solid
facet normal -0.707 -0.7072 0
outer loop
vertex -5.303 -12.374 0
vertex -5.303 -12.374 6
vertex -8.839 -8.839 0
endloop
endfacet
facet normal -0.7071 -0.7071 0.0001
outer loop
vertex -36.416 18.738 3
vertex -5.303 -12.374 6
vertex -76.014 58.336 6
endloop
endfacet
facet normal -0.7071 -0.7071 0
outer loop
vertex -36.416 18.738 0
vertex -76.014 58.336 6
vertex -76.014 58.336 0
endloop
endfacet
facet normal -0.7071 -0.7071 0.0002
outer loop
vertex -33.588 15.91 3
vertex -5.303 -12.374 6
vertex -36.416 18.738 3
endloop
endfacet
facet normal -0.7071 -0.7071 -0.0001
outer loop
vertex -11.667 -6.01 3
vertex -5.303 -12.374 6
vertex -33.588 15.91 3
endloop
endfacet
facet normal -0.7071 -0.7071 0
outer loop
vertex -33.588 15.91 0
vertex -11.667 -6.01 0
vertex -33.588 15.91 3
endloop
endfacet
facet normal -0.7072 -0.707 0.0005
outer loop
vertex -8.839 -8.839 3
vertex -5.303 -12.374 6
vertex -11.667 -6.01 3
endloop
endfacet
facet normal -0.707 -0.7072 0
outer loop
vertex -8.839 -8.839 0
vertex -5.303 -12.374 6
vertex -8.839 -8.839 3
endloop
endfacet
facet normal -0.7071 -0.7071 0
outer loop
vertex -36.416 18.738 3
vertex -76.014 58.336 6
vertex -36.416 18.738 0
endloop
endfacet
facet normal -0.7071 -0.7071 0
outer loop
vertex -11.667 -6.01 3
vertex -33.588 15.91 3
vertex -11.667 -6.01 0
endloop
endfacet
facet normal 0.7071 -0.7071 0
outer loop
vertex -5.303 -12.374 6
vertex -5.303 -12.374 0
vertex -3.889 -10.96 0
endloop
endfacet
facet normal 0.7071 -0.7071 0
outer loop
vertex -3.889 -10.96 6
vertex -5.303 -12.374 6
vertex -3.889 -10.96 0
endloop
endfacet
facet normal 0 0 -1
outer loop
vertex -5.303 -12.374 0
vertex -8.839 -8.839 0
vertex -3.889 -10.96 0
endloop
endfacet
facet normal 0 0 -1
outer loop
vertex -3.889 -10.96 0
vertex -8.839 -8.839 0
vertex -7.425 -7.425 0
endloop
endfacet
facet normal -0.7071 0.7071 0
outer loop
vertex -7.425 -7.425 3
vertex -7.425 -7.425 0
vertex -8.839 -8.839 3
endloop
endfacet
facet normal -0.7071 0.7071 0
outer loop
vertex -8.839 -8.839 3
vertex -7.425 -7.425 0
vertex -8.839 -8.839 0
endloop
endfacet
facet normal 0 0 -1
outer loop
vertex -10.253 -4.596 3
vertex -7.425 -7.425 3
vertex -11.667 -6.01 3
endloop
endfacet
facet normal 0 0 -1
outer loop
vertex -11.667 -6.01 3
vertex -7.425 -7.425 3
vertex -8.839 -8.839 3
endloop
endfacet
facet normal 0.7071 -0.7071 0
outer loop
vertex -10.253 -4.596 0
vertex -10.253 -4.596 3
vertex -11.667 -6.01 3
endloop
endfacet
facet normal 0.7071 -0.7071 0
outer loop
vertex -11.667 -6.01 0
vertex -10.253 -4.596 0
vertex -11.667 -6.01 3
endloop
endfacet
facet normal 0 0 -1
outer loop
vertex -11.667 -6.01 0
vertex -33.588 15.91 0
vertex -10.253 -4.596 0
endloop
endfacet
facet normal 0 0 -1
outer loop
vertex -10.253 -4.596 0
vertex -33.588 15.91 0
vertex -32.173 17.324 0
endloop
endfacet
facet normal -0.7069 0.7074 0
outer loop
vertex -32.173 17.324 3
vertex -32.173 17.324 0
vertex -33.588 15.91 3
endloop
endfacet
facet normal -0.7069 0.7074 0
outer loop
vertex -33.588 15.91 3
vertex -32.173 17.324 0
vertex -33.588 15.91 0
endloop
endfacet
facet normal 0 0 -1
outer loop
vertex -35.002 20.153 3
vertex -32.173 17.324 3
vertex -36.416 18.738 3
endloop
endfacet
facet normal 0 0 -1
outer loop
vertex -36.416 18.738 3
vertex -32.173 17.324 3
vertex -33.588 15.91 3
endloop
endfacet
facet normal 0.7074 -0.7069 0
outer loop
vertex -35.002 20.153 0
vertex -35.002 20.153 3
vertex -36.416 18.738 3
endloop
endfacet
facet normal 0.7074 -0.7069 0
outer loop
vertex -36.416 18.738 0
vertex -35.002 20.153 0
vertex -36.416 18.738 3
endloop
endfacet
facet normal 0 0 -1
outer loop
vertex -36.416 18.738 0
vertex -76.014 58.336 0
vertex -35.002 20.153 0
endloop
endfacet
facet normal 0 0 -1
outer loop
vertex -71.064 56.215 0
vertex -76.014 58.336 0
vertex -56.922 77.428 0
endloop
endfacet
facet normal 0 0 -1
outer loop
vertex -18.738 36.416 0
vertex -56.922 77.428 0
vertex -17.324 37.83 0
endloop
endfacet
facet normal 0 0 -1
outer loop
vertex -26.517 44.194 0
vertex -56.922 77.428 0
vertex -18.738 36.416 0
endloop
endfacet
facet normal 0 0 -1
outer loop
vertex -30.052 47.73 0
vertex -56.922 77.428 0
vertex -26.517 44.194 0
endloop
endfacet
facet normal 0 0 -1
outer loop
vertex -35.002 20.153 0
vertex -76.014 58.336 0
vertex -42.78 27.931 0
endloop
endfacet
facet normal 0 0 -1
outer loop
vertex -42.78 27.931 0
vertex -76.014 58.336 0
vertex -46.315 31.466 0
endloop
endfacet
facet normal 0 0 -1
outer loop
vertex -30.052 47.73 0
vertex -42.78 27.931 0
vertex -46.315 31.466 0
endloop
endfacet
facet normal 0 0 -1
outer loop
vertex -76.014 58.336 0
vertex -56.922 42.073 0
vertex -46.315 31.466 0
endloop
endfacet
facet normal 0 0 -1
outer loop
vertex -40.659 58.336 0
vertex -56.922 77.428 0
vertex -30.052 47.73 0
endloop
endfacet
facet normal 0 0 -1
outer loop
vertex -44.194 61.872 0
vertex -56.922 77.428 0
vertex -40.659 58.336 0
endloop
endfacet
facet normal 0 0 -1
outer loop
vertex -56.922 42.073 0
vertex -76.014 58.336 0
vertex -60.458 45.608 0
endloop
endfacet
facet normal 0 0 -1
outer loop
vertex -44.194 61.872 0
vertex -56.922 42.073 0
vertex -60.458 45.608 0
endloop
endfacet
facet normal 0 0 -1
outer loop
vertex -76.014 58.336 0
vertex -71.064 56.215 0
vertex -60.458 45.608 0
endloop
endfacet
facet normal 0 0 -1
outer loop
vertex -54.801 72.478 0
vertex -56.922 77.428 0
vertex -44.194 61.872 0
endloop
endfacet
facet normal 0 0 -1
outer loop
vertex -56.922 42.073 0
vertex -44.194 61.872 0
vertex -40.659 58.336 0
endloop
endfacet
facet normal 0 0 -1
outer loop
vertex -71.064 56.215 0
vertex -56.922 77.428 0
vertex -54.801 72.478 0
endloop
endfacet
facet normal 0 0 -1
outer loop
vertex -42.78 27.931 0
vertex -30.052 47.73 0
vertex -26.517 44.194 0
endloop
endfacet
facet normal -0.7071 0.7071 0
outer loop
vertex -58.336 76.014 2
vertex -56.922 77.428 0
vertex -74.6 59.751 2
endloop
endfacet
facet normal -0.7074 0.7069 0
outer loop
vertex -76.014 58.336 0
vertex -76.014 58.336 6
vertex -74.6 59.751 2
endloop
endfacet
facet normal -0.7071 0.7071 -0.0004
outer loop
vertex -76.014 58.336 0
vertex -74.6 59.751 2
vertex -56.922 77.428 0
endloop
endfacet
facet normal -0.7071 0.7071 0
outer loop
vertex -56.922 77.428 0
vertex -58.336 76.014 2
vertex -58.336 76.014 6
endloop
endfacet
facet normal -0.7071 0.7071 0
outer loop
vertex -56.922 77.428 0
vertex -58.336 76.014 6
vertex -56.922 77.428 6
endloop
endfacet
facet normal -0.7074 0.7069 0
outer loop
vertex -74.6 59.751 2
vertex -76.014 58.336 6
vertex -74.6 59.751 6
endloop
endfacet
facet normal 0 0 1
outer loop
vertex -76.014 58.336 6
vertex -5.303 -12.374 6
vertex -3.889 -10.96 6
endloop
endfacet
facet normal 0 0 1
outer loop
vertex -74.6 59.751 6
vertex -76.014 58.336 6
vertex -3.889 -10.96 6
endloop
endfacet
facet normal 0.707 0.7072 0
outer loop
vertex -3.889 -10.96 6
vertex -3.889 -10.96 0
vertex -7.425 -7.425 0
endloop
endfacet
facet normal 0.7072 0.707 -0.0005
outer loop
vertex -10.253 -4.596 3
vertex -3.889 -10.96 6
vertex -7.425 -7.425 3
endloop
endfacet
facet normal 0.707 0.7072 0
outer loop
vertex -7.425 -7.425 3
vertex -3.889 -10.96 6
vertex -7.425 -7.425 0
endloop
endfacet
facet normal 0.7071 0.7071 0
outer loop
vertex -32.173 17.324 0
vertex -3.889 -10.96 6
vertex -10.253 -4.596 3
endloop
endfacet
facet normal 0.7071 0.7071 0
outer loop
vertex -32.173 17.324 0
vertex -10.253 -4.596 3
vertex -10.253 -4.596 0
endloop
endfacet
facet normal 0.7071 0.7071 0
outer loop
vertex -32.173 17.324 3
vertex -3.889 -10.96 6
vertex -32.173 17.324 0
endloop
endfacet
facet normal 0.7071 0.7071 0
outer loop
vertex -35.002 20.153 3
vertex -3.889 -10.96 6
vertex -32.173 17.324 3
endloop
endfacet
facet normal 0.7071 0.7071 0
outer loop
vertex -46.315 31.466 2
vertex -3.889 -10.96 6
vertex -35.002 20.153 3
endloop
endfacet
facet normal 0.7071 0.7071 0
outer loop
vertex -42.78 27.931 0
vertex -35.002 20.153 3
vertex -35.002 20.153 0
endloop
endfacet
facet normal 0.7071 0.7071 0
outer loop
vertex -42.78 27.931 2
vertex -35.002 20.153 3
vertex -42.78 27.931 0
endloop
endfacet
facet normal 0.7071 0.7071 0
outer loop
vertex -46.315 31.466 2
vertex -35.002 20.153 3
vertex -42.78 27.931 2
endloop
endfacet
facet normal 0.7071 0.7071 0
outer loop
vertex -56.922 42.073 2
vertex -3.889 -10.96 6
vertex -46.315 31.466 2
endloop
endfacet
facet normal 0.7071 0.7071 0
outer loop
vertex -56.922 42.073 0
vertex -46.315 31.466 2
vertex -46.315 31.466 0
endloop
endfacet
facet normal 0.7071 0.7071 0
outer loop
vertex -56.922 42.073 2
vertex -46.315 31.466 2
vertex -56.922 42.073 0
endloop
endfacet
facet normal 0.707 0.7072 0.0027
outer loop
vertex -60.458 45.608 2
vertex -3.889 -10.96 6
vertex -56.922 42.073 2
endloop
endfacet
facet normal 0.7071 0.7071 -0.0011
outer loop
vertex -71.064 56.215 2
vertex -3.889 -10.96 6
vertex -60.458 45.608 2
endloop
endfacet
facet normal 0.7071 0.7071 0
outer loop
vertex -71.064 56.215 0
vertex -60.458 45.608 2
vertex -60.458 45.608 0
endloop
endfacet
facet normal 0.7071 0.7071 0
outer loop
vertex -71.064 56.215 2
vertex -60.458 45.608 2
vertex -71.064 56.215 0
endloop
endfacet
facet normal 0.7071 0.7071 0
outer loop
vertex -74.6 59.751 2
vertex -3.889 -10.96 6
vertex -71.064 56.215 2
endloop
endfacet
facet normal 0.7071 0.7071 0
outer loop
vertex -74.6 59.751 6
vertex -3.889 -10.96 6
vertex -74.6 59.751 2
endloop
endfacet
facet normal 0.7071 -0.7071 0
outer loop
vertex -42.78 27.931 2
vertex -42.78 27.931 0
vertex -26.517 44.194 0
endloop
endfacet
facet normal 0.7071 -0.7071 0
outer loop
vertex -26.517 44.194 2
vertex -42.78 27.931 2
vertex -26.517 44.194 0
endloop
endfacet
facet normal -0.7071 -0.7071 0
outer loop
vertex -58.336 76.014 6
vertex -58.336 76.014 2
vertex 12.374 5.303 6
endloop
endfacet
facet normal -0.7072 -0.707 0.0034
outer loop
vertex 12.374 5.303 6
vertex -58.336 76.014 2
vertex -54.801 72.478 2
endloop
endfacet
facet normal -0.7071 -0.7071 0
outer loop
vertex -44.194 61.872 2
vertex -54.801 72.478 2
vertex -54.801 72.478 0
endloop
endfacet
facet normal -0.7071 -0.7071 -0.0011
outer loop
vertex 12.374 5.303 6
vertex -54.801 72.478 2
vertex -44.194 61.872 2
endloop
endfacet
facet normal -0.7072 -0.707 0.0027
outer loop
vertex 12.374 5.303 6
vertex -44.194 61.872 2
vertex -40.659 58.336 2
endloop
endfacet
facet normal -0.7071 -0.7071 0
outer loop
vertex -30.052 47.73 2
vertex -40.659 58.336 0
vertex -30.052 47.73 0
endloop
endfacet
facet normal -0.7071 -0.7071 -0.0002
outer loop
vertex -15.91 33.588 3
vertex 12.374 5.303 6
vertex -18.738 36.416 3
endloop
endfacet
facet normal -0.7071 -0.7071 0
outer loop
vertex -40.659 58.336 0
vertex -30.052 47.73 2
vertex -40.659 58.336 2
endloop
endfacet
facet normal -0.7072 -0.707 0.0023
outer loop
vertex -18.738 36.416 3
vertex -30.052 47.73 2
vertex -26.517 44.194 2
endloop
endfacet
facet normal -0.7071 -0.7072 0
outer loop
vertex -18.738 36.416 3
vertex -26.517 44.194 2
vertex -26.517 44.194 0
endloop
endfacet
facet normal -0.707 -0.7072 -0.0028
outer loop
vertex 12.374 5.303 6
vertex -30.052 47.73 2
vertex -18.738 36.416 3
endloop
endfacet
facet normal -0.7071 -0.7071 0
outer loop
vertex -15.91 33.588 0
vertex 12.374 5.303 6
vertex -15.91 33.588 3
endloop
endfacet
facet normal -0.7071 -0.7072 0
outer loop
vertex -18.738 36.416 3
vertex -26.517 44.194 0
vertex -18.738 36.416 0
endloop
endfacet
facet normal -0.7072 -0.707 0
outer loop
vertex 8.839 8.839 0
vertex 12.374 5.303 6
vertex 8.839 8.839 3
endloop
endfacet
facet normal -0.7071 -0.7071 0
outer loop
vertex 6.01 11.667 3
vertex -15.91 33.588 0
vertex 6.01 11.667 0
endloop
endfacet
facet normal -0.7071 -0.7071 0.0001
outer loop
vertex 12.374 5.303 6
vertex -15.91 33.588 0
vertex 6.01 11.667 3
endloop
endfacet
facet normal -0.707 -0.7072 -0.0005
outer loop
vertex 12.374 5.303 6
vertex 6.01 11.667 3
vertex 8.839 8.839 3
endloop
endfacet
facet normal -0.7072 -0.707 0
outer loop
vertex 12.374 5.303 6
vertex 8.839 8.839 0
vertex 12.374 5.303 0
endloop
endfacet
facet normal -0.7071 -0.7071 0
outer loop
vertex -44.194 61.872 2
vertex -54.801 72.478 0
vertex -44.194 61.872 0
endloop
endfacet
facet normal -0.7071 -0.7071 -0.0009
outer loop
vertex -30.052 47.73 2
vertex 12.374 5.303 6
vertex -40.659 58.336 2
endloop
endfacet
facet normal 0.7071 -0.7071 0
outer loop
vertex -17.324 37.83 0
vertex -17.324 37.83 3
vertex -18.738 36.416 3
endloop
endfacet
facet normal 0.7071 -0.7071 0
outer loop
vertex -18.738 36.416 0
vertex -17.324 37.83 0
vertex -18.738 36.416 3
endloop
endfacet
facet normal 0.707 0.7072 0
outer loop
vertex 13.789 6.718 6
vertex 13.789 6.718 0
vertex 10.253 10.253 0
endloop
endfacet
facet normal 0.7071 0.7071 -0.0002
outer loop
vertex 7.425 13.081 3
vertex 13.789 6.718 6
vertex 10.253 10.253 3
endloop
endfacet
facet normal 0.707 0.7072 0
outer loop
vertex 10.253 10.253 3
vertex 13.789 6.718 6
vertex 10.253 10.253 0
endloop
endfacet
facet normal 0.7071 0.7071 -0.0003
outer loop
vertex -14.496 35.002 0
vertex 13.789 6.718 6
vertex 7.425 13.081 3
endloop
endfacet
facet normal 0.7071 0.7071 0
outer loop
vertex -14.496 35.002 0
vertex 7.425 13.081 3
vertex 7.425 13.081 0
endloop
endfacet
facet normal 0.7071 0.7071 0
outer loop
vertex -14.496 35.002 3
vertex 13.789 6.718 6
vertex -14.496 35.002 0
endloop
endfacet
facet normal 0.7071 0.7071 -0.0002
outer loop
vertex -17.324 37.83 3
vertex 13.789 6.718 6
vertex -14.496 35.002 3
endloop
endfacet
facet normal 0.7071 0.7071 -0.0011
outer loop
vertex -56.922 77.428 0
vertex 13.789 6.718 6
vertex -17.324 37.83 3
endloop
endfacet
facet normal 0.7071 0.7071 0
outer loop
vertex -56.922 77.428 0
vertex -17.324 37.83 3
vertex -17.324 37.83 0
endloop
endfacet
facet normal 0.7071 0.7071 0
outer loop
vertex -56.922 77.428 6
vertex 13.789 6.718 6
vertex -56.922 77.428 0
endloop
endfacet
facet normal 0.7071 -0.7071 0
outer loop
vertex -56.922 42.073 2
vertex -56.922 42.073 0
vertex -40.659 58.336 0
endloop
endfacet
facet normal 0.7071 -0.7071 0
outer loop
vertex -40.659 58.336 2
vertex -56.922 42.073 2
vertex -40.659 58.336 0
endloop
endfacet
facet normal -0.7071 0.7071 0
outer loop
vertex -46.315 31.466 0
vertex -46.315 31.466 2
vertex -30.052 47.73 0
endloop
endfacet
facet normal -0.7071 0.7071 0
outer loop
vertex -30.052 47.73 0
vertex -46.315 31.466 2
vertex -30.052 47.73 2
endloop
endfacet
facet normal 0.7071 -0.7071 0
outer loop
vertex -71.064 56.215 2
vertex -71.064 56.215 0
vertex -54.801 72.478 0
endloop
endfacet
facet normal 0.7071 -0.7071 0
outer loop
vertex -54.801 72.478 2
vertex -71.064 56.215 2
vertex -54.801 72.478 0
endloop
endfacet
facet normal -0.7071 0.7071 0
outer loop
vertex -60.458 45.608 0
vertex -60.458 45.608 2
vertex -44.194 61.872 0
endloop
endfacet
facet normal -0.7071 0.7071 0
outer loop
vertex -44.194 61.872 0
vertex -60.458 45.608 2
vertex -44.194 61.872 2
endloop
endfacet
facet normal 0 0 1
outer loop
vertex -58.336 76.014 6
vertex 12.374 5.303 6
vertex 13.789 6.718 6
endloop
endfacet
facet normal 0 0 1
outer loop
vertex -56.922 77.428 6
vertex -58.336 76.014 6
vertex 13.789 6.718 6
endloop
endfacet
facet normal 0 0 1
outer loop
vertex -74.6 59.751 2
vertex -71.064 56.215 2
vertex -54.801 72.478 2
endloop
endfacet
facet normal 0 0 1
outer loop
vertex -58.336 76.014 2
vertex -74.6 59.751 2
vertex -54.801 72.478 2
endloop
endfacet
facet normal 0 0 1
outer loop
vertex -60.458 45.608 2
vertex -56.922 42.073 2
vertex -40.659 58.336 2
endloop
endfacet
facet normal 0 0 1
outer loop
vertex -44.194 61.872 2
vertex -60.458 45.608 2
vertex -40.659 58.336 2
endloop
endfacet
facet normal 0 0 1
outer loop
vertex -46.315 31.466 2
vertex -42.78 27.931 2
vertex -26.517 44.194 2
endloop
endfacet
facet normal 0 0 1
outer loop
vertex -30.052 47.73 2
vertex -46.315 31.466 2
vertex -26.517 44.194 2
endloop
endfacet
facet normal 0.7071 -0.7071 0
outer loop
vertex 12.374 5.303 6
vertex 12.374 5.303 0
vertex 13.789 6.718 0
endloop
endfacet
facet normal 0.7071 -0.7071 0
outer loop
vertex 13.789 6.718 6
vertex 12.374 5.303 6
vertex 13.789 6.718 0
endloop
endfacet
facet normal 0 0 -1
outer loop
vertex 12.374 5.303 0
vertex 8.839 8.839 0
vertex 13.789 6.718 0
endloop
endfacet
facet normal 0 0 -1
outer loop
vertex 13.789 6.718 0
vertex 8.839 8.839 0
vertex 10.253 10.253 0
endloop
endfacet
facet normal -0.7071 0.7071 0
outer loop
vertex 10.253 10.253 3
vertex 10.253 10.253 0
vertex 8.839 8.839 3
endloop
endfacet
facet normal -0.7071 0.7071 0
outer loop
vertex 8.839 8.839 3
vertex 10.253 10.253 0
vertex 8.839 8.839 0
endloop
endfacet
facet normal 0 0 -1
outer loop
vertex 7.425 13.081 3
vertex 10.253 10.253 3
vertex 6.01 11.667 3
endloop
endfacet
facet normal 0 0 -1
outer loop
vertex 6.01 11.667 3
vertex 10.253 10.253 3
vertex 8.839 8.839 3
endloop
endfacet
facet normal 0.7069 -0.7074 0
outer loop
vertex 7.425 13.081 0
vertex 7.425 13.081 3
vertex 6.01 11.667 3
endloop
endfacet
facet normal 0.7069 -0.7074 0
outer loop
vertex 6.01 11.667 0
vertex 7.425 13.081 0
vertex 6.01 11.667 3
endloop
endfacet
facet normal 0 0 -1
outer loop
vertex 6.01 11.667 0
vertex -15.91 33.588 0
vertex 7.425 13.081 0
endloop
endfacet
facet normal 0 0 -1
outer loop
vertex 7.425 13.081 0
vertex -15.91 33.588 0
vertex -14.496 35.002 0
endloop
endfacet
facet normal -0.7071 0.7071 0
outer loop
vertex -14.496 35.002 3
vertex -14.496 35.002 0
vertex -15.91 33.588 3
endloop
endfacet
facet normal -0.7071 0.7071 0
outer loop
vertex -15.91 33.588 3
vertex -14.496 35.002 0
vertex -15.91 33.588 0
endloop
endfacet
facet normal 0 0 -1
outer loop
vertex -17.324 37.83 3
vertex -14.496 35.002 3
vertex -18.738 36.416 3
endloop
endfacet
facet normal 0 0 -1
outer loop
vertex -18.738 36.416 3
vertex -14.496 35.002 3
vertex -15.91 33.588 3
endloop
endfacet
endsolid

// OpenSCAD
// file: shapes.scad
/*
 *  OpenSCAD Shapes Library (www.openscad.at)
 *  Copyright (C) 2009  Catarina Mota <clifford@clifford.at>
 *
 *  This program is free software; you can redistribute it and/or modify
 *  it under the terms of the GNU General Public License as published by
 *  the Free Software Foundation; either version 2 of the License, or
 *  (at your option) any later version.
 *
 *  This program is distributed in the hope that it will be useful,
 *  but WITHOUT ANY WARRANTY; without even the implied warranty of
 *  MERCHANTABILITY or FITNESS FOR A PARTICULAR PURPOSE.  See the
 *  GNU General Public License for more details.
 *
 *  You should have received a copy of the GNU General Public License
 *  along with this program; if not, write to the Free Software
 *  Foundation, Inc., 59 Temple Place, Suite 330, Boston, MA  02111-1307  USA
 *
*/


//box(width, height, depth);
//roundedBox(width, height, depth, factor);
//cone(height, radius);
//oval(width, height, depth);
//tube(height, radius, wall);
//ovalTube(width, height, depth, wall);
//hexagon(height, depth);
//octagon(height, depth);
//dodecagon(height, depth);
//hexagram(height, depth);
//rightTriangle(adjacent, opposite, depth);
//equiTriangle(side, depth);
//12ptStar(height, depth);

//----------------------

//roundedBox(120, 60, 3, 8);

//----------------------

module box(w,h,d) {
	scale ([w,h,d]) cube(1, true);
}

module roundedBox(w,h,d,f){
	difference(){
		box(w,h,d);
		translate([-w/2,h/2,0]) cube(w/(f/2),true);
		translate([w/2,h/2,0]) cube(w/(f/2),true);
		translate([-w/2,-h/2,0]) cube(w/(f/2),true);
		translate([w/2,-h/2,0]) cube(w/(f/2),true);
	}
	translate([-w/2+w/f,h/2-w/f,-d/2]) cylinder(d,w/f, w/f);
	translate([w/2-w/f,h/2-w/f,-d/2]) cylinder(d,w/f, w/f);
	translate([-w/2+w/f,-h/2+w/f,-d/2]) cylinder(d,w/f, w/f);
	translate([w/2-w/f,-h/2+w/f,-d/2]) cylinder(d,w/f, w/f);
}

module cone(height, radius) {
		cylinder(height, radius, 0);
}

module oval(w,h,d) {
	scale ([w/100, h/100, 1]) cylinder(d, 50, 50);
}

module tube(height, radius, wall) {
	difference(){
		cylinder(height, radius, radius);
		cylinder(height, radius-wall, radius-wall);
	}
}

module ovalTube(w,h,d,wall) {
	difference(){
		scale ([w/100, h/100, 1]) cylinder(d, 50, 50);
		scale ([w/100, h/100, 1]) cylinder(d, 50-wall, 50-wall);
	}
}

module hexagon(height, depth) {
	boxWidth=height/1.75;
		union(){
			box(boxWidth, height, depth);
			rotate([0,0,60]) box(boxWidth, height, depth);
			rotate([0,0,-60]) box(boxWidth, height, depth);
		}
}

module octagon(height, depth) {
	intersection(){
		box(height, height, depth);
		rotate([0,0,45]) box(height, height, depth);
	}
}

module dodecagon(height, depth) {
	intersection(){
		hexagon(height, depth);
		rotate([0,0,90]) hexagon(height, depth);
	}
}

module hexagram(height, depth) {
	boxWidth=height/1.75;
	intersection(){
		box(height, boxWidth, depth);
		rotate([0,0,60]) box(height, boxWidth, depth);
	}
	intersection(){
		box(height, boxWidth, depth);
		rotate([0,0,-60]) box(height, boxWidth, depth);
	}
	intersection(){
		rotate([0,0,60]) box(height, boxWidth, depth);
		rotate([0,0,-60]) box(height, boxWidth, depth);
	}
}

module rightTriangle(adjacent, opposite, depth) {
	difference(){
		translate([-adjacent/2,opposite/2,0]) box(adjacent, opposite, depth);
		translate([-adjacent,0,0]){
			rotate([0,0,atan(opposite/adjacent)]) dislocateBox(adjacent*4, opposite, depth);
		}
	}
}

module equiTriangle(side, depth) {
	difference(){
		translate([-side/2,side/2,0]) box(side, side, depth);
		rotate([0,0,30]) dislocateBox(side*2, side, depth);
		translate([-side,0,0]){
			rotate([0,0,60]) dislocateBox(side*2, side, depth);
		}
	}
}

module 12ptStar(height, depth) {
	starNum=3;
	starAngle=360/starNum;
	for (s=[1:starNum]){
		rotate([0, 0, s*starAngle]) box(height, height, depth);
	}
}

//-----------------------
//MOVES THE ROTATION AXIS OF A BOX FROM ITS CENTER TO THE BOTTOM LEFT CORNER
module dislocateBox(w,h,d){
	translate([w/2,h,0]){
		difference(){
			box(w, h*2, d+1);
			translate([-w,0,0]) box(w, h*2, d+1);
		}
	}
}
// main file
include <shapes.scad>  // using Catarina Mota's shapes library
//translate ([0,0,0]) cross_braces ();
//translate ([0,35,0]) cross_braces ();
rotate ([0,0,45])difference ()
{
	union ()
	{
		translate ([12.5,-5,0]) cube ([2,100,6]);
		translate ([-12.5,-5,0]) cube ([2,100,6]);
		translate ([-12.5,50,0]) cube ([25,5,2]);
		translate ([-12.5,70,0]) cube ([25,5,2]);
		translate ([-12.5,90,0]) cube ([25,5,2]);
	}
	translate ([-55,0,0]) cube ([110,4,3]);
	translate ([-55,35,0]) cube ([110,4,3]);
	
}

module cross_braces ()
{
union ()
{
	difference ()
	{
		translate ([-55,0,0]) cube ([110,2,12]);
		translate ([-43,0,6]) cube (86,2,6);
		translate ([-43,0.5,12.5]) rotate ([90,270,0]) rightTriangle(6.5,4,3);
		translate ([-52,0,0]) cube ([4,2,8]);
		translate ([-48.01,1,-0.01]) rotate ([90,90,0]) rightTriangle(8,5,2.01);
		translate ([42.99,1,12.5]) rotate ([270,270,0]) rightTriangle(6.5,4,	3);
		translate ([48,0,0]) cube ([4,2,8]);
		translate ([48.01,1,0]) rotate ([270,90,0]) rightTriangle(8,5,2.01);
	}
}
}
